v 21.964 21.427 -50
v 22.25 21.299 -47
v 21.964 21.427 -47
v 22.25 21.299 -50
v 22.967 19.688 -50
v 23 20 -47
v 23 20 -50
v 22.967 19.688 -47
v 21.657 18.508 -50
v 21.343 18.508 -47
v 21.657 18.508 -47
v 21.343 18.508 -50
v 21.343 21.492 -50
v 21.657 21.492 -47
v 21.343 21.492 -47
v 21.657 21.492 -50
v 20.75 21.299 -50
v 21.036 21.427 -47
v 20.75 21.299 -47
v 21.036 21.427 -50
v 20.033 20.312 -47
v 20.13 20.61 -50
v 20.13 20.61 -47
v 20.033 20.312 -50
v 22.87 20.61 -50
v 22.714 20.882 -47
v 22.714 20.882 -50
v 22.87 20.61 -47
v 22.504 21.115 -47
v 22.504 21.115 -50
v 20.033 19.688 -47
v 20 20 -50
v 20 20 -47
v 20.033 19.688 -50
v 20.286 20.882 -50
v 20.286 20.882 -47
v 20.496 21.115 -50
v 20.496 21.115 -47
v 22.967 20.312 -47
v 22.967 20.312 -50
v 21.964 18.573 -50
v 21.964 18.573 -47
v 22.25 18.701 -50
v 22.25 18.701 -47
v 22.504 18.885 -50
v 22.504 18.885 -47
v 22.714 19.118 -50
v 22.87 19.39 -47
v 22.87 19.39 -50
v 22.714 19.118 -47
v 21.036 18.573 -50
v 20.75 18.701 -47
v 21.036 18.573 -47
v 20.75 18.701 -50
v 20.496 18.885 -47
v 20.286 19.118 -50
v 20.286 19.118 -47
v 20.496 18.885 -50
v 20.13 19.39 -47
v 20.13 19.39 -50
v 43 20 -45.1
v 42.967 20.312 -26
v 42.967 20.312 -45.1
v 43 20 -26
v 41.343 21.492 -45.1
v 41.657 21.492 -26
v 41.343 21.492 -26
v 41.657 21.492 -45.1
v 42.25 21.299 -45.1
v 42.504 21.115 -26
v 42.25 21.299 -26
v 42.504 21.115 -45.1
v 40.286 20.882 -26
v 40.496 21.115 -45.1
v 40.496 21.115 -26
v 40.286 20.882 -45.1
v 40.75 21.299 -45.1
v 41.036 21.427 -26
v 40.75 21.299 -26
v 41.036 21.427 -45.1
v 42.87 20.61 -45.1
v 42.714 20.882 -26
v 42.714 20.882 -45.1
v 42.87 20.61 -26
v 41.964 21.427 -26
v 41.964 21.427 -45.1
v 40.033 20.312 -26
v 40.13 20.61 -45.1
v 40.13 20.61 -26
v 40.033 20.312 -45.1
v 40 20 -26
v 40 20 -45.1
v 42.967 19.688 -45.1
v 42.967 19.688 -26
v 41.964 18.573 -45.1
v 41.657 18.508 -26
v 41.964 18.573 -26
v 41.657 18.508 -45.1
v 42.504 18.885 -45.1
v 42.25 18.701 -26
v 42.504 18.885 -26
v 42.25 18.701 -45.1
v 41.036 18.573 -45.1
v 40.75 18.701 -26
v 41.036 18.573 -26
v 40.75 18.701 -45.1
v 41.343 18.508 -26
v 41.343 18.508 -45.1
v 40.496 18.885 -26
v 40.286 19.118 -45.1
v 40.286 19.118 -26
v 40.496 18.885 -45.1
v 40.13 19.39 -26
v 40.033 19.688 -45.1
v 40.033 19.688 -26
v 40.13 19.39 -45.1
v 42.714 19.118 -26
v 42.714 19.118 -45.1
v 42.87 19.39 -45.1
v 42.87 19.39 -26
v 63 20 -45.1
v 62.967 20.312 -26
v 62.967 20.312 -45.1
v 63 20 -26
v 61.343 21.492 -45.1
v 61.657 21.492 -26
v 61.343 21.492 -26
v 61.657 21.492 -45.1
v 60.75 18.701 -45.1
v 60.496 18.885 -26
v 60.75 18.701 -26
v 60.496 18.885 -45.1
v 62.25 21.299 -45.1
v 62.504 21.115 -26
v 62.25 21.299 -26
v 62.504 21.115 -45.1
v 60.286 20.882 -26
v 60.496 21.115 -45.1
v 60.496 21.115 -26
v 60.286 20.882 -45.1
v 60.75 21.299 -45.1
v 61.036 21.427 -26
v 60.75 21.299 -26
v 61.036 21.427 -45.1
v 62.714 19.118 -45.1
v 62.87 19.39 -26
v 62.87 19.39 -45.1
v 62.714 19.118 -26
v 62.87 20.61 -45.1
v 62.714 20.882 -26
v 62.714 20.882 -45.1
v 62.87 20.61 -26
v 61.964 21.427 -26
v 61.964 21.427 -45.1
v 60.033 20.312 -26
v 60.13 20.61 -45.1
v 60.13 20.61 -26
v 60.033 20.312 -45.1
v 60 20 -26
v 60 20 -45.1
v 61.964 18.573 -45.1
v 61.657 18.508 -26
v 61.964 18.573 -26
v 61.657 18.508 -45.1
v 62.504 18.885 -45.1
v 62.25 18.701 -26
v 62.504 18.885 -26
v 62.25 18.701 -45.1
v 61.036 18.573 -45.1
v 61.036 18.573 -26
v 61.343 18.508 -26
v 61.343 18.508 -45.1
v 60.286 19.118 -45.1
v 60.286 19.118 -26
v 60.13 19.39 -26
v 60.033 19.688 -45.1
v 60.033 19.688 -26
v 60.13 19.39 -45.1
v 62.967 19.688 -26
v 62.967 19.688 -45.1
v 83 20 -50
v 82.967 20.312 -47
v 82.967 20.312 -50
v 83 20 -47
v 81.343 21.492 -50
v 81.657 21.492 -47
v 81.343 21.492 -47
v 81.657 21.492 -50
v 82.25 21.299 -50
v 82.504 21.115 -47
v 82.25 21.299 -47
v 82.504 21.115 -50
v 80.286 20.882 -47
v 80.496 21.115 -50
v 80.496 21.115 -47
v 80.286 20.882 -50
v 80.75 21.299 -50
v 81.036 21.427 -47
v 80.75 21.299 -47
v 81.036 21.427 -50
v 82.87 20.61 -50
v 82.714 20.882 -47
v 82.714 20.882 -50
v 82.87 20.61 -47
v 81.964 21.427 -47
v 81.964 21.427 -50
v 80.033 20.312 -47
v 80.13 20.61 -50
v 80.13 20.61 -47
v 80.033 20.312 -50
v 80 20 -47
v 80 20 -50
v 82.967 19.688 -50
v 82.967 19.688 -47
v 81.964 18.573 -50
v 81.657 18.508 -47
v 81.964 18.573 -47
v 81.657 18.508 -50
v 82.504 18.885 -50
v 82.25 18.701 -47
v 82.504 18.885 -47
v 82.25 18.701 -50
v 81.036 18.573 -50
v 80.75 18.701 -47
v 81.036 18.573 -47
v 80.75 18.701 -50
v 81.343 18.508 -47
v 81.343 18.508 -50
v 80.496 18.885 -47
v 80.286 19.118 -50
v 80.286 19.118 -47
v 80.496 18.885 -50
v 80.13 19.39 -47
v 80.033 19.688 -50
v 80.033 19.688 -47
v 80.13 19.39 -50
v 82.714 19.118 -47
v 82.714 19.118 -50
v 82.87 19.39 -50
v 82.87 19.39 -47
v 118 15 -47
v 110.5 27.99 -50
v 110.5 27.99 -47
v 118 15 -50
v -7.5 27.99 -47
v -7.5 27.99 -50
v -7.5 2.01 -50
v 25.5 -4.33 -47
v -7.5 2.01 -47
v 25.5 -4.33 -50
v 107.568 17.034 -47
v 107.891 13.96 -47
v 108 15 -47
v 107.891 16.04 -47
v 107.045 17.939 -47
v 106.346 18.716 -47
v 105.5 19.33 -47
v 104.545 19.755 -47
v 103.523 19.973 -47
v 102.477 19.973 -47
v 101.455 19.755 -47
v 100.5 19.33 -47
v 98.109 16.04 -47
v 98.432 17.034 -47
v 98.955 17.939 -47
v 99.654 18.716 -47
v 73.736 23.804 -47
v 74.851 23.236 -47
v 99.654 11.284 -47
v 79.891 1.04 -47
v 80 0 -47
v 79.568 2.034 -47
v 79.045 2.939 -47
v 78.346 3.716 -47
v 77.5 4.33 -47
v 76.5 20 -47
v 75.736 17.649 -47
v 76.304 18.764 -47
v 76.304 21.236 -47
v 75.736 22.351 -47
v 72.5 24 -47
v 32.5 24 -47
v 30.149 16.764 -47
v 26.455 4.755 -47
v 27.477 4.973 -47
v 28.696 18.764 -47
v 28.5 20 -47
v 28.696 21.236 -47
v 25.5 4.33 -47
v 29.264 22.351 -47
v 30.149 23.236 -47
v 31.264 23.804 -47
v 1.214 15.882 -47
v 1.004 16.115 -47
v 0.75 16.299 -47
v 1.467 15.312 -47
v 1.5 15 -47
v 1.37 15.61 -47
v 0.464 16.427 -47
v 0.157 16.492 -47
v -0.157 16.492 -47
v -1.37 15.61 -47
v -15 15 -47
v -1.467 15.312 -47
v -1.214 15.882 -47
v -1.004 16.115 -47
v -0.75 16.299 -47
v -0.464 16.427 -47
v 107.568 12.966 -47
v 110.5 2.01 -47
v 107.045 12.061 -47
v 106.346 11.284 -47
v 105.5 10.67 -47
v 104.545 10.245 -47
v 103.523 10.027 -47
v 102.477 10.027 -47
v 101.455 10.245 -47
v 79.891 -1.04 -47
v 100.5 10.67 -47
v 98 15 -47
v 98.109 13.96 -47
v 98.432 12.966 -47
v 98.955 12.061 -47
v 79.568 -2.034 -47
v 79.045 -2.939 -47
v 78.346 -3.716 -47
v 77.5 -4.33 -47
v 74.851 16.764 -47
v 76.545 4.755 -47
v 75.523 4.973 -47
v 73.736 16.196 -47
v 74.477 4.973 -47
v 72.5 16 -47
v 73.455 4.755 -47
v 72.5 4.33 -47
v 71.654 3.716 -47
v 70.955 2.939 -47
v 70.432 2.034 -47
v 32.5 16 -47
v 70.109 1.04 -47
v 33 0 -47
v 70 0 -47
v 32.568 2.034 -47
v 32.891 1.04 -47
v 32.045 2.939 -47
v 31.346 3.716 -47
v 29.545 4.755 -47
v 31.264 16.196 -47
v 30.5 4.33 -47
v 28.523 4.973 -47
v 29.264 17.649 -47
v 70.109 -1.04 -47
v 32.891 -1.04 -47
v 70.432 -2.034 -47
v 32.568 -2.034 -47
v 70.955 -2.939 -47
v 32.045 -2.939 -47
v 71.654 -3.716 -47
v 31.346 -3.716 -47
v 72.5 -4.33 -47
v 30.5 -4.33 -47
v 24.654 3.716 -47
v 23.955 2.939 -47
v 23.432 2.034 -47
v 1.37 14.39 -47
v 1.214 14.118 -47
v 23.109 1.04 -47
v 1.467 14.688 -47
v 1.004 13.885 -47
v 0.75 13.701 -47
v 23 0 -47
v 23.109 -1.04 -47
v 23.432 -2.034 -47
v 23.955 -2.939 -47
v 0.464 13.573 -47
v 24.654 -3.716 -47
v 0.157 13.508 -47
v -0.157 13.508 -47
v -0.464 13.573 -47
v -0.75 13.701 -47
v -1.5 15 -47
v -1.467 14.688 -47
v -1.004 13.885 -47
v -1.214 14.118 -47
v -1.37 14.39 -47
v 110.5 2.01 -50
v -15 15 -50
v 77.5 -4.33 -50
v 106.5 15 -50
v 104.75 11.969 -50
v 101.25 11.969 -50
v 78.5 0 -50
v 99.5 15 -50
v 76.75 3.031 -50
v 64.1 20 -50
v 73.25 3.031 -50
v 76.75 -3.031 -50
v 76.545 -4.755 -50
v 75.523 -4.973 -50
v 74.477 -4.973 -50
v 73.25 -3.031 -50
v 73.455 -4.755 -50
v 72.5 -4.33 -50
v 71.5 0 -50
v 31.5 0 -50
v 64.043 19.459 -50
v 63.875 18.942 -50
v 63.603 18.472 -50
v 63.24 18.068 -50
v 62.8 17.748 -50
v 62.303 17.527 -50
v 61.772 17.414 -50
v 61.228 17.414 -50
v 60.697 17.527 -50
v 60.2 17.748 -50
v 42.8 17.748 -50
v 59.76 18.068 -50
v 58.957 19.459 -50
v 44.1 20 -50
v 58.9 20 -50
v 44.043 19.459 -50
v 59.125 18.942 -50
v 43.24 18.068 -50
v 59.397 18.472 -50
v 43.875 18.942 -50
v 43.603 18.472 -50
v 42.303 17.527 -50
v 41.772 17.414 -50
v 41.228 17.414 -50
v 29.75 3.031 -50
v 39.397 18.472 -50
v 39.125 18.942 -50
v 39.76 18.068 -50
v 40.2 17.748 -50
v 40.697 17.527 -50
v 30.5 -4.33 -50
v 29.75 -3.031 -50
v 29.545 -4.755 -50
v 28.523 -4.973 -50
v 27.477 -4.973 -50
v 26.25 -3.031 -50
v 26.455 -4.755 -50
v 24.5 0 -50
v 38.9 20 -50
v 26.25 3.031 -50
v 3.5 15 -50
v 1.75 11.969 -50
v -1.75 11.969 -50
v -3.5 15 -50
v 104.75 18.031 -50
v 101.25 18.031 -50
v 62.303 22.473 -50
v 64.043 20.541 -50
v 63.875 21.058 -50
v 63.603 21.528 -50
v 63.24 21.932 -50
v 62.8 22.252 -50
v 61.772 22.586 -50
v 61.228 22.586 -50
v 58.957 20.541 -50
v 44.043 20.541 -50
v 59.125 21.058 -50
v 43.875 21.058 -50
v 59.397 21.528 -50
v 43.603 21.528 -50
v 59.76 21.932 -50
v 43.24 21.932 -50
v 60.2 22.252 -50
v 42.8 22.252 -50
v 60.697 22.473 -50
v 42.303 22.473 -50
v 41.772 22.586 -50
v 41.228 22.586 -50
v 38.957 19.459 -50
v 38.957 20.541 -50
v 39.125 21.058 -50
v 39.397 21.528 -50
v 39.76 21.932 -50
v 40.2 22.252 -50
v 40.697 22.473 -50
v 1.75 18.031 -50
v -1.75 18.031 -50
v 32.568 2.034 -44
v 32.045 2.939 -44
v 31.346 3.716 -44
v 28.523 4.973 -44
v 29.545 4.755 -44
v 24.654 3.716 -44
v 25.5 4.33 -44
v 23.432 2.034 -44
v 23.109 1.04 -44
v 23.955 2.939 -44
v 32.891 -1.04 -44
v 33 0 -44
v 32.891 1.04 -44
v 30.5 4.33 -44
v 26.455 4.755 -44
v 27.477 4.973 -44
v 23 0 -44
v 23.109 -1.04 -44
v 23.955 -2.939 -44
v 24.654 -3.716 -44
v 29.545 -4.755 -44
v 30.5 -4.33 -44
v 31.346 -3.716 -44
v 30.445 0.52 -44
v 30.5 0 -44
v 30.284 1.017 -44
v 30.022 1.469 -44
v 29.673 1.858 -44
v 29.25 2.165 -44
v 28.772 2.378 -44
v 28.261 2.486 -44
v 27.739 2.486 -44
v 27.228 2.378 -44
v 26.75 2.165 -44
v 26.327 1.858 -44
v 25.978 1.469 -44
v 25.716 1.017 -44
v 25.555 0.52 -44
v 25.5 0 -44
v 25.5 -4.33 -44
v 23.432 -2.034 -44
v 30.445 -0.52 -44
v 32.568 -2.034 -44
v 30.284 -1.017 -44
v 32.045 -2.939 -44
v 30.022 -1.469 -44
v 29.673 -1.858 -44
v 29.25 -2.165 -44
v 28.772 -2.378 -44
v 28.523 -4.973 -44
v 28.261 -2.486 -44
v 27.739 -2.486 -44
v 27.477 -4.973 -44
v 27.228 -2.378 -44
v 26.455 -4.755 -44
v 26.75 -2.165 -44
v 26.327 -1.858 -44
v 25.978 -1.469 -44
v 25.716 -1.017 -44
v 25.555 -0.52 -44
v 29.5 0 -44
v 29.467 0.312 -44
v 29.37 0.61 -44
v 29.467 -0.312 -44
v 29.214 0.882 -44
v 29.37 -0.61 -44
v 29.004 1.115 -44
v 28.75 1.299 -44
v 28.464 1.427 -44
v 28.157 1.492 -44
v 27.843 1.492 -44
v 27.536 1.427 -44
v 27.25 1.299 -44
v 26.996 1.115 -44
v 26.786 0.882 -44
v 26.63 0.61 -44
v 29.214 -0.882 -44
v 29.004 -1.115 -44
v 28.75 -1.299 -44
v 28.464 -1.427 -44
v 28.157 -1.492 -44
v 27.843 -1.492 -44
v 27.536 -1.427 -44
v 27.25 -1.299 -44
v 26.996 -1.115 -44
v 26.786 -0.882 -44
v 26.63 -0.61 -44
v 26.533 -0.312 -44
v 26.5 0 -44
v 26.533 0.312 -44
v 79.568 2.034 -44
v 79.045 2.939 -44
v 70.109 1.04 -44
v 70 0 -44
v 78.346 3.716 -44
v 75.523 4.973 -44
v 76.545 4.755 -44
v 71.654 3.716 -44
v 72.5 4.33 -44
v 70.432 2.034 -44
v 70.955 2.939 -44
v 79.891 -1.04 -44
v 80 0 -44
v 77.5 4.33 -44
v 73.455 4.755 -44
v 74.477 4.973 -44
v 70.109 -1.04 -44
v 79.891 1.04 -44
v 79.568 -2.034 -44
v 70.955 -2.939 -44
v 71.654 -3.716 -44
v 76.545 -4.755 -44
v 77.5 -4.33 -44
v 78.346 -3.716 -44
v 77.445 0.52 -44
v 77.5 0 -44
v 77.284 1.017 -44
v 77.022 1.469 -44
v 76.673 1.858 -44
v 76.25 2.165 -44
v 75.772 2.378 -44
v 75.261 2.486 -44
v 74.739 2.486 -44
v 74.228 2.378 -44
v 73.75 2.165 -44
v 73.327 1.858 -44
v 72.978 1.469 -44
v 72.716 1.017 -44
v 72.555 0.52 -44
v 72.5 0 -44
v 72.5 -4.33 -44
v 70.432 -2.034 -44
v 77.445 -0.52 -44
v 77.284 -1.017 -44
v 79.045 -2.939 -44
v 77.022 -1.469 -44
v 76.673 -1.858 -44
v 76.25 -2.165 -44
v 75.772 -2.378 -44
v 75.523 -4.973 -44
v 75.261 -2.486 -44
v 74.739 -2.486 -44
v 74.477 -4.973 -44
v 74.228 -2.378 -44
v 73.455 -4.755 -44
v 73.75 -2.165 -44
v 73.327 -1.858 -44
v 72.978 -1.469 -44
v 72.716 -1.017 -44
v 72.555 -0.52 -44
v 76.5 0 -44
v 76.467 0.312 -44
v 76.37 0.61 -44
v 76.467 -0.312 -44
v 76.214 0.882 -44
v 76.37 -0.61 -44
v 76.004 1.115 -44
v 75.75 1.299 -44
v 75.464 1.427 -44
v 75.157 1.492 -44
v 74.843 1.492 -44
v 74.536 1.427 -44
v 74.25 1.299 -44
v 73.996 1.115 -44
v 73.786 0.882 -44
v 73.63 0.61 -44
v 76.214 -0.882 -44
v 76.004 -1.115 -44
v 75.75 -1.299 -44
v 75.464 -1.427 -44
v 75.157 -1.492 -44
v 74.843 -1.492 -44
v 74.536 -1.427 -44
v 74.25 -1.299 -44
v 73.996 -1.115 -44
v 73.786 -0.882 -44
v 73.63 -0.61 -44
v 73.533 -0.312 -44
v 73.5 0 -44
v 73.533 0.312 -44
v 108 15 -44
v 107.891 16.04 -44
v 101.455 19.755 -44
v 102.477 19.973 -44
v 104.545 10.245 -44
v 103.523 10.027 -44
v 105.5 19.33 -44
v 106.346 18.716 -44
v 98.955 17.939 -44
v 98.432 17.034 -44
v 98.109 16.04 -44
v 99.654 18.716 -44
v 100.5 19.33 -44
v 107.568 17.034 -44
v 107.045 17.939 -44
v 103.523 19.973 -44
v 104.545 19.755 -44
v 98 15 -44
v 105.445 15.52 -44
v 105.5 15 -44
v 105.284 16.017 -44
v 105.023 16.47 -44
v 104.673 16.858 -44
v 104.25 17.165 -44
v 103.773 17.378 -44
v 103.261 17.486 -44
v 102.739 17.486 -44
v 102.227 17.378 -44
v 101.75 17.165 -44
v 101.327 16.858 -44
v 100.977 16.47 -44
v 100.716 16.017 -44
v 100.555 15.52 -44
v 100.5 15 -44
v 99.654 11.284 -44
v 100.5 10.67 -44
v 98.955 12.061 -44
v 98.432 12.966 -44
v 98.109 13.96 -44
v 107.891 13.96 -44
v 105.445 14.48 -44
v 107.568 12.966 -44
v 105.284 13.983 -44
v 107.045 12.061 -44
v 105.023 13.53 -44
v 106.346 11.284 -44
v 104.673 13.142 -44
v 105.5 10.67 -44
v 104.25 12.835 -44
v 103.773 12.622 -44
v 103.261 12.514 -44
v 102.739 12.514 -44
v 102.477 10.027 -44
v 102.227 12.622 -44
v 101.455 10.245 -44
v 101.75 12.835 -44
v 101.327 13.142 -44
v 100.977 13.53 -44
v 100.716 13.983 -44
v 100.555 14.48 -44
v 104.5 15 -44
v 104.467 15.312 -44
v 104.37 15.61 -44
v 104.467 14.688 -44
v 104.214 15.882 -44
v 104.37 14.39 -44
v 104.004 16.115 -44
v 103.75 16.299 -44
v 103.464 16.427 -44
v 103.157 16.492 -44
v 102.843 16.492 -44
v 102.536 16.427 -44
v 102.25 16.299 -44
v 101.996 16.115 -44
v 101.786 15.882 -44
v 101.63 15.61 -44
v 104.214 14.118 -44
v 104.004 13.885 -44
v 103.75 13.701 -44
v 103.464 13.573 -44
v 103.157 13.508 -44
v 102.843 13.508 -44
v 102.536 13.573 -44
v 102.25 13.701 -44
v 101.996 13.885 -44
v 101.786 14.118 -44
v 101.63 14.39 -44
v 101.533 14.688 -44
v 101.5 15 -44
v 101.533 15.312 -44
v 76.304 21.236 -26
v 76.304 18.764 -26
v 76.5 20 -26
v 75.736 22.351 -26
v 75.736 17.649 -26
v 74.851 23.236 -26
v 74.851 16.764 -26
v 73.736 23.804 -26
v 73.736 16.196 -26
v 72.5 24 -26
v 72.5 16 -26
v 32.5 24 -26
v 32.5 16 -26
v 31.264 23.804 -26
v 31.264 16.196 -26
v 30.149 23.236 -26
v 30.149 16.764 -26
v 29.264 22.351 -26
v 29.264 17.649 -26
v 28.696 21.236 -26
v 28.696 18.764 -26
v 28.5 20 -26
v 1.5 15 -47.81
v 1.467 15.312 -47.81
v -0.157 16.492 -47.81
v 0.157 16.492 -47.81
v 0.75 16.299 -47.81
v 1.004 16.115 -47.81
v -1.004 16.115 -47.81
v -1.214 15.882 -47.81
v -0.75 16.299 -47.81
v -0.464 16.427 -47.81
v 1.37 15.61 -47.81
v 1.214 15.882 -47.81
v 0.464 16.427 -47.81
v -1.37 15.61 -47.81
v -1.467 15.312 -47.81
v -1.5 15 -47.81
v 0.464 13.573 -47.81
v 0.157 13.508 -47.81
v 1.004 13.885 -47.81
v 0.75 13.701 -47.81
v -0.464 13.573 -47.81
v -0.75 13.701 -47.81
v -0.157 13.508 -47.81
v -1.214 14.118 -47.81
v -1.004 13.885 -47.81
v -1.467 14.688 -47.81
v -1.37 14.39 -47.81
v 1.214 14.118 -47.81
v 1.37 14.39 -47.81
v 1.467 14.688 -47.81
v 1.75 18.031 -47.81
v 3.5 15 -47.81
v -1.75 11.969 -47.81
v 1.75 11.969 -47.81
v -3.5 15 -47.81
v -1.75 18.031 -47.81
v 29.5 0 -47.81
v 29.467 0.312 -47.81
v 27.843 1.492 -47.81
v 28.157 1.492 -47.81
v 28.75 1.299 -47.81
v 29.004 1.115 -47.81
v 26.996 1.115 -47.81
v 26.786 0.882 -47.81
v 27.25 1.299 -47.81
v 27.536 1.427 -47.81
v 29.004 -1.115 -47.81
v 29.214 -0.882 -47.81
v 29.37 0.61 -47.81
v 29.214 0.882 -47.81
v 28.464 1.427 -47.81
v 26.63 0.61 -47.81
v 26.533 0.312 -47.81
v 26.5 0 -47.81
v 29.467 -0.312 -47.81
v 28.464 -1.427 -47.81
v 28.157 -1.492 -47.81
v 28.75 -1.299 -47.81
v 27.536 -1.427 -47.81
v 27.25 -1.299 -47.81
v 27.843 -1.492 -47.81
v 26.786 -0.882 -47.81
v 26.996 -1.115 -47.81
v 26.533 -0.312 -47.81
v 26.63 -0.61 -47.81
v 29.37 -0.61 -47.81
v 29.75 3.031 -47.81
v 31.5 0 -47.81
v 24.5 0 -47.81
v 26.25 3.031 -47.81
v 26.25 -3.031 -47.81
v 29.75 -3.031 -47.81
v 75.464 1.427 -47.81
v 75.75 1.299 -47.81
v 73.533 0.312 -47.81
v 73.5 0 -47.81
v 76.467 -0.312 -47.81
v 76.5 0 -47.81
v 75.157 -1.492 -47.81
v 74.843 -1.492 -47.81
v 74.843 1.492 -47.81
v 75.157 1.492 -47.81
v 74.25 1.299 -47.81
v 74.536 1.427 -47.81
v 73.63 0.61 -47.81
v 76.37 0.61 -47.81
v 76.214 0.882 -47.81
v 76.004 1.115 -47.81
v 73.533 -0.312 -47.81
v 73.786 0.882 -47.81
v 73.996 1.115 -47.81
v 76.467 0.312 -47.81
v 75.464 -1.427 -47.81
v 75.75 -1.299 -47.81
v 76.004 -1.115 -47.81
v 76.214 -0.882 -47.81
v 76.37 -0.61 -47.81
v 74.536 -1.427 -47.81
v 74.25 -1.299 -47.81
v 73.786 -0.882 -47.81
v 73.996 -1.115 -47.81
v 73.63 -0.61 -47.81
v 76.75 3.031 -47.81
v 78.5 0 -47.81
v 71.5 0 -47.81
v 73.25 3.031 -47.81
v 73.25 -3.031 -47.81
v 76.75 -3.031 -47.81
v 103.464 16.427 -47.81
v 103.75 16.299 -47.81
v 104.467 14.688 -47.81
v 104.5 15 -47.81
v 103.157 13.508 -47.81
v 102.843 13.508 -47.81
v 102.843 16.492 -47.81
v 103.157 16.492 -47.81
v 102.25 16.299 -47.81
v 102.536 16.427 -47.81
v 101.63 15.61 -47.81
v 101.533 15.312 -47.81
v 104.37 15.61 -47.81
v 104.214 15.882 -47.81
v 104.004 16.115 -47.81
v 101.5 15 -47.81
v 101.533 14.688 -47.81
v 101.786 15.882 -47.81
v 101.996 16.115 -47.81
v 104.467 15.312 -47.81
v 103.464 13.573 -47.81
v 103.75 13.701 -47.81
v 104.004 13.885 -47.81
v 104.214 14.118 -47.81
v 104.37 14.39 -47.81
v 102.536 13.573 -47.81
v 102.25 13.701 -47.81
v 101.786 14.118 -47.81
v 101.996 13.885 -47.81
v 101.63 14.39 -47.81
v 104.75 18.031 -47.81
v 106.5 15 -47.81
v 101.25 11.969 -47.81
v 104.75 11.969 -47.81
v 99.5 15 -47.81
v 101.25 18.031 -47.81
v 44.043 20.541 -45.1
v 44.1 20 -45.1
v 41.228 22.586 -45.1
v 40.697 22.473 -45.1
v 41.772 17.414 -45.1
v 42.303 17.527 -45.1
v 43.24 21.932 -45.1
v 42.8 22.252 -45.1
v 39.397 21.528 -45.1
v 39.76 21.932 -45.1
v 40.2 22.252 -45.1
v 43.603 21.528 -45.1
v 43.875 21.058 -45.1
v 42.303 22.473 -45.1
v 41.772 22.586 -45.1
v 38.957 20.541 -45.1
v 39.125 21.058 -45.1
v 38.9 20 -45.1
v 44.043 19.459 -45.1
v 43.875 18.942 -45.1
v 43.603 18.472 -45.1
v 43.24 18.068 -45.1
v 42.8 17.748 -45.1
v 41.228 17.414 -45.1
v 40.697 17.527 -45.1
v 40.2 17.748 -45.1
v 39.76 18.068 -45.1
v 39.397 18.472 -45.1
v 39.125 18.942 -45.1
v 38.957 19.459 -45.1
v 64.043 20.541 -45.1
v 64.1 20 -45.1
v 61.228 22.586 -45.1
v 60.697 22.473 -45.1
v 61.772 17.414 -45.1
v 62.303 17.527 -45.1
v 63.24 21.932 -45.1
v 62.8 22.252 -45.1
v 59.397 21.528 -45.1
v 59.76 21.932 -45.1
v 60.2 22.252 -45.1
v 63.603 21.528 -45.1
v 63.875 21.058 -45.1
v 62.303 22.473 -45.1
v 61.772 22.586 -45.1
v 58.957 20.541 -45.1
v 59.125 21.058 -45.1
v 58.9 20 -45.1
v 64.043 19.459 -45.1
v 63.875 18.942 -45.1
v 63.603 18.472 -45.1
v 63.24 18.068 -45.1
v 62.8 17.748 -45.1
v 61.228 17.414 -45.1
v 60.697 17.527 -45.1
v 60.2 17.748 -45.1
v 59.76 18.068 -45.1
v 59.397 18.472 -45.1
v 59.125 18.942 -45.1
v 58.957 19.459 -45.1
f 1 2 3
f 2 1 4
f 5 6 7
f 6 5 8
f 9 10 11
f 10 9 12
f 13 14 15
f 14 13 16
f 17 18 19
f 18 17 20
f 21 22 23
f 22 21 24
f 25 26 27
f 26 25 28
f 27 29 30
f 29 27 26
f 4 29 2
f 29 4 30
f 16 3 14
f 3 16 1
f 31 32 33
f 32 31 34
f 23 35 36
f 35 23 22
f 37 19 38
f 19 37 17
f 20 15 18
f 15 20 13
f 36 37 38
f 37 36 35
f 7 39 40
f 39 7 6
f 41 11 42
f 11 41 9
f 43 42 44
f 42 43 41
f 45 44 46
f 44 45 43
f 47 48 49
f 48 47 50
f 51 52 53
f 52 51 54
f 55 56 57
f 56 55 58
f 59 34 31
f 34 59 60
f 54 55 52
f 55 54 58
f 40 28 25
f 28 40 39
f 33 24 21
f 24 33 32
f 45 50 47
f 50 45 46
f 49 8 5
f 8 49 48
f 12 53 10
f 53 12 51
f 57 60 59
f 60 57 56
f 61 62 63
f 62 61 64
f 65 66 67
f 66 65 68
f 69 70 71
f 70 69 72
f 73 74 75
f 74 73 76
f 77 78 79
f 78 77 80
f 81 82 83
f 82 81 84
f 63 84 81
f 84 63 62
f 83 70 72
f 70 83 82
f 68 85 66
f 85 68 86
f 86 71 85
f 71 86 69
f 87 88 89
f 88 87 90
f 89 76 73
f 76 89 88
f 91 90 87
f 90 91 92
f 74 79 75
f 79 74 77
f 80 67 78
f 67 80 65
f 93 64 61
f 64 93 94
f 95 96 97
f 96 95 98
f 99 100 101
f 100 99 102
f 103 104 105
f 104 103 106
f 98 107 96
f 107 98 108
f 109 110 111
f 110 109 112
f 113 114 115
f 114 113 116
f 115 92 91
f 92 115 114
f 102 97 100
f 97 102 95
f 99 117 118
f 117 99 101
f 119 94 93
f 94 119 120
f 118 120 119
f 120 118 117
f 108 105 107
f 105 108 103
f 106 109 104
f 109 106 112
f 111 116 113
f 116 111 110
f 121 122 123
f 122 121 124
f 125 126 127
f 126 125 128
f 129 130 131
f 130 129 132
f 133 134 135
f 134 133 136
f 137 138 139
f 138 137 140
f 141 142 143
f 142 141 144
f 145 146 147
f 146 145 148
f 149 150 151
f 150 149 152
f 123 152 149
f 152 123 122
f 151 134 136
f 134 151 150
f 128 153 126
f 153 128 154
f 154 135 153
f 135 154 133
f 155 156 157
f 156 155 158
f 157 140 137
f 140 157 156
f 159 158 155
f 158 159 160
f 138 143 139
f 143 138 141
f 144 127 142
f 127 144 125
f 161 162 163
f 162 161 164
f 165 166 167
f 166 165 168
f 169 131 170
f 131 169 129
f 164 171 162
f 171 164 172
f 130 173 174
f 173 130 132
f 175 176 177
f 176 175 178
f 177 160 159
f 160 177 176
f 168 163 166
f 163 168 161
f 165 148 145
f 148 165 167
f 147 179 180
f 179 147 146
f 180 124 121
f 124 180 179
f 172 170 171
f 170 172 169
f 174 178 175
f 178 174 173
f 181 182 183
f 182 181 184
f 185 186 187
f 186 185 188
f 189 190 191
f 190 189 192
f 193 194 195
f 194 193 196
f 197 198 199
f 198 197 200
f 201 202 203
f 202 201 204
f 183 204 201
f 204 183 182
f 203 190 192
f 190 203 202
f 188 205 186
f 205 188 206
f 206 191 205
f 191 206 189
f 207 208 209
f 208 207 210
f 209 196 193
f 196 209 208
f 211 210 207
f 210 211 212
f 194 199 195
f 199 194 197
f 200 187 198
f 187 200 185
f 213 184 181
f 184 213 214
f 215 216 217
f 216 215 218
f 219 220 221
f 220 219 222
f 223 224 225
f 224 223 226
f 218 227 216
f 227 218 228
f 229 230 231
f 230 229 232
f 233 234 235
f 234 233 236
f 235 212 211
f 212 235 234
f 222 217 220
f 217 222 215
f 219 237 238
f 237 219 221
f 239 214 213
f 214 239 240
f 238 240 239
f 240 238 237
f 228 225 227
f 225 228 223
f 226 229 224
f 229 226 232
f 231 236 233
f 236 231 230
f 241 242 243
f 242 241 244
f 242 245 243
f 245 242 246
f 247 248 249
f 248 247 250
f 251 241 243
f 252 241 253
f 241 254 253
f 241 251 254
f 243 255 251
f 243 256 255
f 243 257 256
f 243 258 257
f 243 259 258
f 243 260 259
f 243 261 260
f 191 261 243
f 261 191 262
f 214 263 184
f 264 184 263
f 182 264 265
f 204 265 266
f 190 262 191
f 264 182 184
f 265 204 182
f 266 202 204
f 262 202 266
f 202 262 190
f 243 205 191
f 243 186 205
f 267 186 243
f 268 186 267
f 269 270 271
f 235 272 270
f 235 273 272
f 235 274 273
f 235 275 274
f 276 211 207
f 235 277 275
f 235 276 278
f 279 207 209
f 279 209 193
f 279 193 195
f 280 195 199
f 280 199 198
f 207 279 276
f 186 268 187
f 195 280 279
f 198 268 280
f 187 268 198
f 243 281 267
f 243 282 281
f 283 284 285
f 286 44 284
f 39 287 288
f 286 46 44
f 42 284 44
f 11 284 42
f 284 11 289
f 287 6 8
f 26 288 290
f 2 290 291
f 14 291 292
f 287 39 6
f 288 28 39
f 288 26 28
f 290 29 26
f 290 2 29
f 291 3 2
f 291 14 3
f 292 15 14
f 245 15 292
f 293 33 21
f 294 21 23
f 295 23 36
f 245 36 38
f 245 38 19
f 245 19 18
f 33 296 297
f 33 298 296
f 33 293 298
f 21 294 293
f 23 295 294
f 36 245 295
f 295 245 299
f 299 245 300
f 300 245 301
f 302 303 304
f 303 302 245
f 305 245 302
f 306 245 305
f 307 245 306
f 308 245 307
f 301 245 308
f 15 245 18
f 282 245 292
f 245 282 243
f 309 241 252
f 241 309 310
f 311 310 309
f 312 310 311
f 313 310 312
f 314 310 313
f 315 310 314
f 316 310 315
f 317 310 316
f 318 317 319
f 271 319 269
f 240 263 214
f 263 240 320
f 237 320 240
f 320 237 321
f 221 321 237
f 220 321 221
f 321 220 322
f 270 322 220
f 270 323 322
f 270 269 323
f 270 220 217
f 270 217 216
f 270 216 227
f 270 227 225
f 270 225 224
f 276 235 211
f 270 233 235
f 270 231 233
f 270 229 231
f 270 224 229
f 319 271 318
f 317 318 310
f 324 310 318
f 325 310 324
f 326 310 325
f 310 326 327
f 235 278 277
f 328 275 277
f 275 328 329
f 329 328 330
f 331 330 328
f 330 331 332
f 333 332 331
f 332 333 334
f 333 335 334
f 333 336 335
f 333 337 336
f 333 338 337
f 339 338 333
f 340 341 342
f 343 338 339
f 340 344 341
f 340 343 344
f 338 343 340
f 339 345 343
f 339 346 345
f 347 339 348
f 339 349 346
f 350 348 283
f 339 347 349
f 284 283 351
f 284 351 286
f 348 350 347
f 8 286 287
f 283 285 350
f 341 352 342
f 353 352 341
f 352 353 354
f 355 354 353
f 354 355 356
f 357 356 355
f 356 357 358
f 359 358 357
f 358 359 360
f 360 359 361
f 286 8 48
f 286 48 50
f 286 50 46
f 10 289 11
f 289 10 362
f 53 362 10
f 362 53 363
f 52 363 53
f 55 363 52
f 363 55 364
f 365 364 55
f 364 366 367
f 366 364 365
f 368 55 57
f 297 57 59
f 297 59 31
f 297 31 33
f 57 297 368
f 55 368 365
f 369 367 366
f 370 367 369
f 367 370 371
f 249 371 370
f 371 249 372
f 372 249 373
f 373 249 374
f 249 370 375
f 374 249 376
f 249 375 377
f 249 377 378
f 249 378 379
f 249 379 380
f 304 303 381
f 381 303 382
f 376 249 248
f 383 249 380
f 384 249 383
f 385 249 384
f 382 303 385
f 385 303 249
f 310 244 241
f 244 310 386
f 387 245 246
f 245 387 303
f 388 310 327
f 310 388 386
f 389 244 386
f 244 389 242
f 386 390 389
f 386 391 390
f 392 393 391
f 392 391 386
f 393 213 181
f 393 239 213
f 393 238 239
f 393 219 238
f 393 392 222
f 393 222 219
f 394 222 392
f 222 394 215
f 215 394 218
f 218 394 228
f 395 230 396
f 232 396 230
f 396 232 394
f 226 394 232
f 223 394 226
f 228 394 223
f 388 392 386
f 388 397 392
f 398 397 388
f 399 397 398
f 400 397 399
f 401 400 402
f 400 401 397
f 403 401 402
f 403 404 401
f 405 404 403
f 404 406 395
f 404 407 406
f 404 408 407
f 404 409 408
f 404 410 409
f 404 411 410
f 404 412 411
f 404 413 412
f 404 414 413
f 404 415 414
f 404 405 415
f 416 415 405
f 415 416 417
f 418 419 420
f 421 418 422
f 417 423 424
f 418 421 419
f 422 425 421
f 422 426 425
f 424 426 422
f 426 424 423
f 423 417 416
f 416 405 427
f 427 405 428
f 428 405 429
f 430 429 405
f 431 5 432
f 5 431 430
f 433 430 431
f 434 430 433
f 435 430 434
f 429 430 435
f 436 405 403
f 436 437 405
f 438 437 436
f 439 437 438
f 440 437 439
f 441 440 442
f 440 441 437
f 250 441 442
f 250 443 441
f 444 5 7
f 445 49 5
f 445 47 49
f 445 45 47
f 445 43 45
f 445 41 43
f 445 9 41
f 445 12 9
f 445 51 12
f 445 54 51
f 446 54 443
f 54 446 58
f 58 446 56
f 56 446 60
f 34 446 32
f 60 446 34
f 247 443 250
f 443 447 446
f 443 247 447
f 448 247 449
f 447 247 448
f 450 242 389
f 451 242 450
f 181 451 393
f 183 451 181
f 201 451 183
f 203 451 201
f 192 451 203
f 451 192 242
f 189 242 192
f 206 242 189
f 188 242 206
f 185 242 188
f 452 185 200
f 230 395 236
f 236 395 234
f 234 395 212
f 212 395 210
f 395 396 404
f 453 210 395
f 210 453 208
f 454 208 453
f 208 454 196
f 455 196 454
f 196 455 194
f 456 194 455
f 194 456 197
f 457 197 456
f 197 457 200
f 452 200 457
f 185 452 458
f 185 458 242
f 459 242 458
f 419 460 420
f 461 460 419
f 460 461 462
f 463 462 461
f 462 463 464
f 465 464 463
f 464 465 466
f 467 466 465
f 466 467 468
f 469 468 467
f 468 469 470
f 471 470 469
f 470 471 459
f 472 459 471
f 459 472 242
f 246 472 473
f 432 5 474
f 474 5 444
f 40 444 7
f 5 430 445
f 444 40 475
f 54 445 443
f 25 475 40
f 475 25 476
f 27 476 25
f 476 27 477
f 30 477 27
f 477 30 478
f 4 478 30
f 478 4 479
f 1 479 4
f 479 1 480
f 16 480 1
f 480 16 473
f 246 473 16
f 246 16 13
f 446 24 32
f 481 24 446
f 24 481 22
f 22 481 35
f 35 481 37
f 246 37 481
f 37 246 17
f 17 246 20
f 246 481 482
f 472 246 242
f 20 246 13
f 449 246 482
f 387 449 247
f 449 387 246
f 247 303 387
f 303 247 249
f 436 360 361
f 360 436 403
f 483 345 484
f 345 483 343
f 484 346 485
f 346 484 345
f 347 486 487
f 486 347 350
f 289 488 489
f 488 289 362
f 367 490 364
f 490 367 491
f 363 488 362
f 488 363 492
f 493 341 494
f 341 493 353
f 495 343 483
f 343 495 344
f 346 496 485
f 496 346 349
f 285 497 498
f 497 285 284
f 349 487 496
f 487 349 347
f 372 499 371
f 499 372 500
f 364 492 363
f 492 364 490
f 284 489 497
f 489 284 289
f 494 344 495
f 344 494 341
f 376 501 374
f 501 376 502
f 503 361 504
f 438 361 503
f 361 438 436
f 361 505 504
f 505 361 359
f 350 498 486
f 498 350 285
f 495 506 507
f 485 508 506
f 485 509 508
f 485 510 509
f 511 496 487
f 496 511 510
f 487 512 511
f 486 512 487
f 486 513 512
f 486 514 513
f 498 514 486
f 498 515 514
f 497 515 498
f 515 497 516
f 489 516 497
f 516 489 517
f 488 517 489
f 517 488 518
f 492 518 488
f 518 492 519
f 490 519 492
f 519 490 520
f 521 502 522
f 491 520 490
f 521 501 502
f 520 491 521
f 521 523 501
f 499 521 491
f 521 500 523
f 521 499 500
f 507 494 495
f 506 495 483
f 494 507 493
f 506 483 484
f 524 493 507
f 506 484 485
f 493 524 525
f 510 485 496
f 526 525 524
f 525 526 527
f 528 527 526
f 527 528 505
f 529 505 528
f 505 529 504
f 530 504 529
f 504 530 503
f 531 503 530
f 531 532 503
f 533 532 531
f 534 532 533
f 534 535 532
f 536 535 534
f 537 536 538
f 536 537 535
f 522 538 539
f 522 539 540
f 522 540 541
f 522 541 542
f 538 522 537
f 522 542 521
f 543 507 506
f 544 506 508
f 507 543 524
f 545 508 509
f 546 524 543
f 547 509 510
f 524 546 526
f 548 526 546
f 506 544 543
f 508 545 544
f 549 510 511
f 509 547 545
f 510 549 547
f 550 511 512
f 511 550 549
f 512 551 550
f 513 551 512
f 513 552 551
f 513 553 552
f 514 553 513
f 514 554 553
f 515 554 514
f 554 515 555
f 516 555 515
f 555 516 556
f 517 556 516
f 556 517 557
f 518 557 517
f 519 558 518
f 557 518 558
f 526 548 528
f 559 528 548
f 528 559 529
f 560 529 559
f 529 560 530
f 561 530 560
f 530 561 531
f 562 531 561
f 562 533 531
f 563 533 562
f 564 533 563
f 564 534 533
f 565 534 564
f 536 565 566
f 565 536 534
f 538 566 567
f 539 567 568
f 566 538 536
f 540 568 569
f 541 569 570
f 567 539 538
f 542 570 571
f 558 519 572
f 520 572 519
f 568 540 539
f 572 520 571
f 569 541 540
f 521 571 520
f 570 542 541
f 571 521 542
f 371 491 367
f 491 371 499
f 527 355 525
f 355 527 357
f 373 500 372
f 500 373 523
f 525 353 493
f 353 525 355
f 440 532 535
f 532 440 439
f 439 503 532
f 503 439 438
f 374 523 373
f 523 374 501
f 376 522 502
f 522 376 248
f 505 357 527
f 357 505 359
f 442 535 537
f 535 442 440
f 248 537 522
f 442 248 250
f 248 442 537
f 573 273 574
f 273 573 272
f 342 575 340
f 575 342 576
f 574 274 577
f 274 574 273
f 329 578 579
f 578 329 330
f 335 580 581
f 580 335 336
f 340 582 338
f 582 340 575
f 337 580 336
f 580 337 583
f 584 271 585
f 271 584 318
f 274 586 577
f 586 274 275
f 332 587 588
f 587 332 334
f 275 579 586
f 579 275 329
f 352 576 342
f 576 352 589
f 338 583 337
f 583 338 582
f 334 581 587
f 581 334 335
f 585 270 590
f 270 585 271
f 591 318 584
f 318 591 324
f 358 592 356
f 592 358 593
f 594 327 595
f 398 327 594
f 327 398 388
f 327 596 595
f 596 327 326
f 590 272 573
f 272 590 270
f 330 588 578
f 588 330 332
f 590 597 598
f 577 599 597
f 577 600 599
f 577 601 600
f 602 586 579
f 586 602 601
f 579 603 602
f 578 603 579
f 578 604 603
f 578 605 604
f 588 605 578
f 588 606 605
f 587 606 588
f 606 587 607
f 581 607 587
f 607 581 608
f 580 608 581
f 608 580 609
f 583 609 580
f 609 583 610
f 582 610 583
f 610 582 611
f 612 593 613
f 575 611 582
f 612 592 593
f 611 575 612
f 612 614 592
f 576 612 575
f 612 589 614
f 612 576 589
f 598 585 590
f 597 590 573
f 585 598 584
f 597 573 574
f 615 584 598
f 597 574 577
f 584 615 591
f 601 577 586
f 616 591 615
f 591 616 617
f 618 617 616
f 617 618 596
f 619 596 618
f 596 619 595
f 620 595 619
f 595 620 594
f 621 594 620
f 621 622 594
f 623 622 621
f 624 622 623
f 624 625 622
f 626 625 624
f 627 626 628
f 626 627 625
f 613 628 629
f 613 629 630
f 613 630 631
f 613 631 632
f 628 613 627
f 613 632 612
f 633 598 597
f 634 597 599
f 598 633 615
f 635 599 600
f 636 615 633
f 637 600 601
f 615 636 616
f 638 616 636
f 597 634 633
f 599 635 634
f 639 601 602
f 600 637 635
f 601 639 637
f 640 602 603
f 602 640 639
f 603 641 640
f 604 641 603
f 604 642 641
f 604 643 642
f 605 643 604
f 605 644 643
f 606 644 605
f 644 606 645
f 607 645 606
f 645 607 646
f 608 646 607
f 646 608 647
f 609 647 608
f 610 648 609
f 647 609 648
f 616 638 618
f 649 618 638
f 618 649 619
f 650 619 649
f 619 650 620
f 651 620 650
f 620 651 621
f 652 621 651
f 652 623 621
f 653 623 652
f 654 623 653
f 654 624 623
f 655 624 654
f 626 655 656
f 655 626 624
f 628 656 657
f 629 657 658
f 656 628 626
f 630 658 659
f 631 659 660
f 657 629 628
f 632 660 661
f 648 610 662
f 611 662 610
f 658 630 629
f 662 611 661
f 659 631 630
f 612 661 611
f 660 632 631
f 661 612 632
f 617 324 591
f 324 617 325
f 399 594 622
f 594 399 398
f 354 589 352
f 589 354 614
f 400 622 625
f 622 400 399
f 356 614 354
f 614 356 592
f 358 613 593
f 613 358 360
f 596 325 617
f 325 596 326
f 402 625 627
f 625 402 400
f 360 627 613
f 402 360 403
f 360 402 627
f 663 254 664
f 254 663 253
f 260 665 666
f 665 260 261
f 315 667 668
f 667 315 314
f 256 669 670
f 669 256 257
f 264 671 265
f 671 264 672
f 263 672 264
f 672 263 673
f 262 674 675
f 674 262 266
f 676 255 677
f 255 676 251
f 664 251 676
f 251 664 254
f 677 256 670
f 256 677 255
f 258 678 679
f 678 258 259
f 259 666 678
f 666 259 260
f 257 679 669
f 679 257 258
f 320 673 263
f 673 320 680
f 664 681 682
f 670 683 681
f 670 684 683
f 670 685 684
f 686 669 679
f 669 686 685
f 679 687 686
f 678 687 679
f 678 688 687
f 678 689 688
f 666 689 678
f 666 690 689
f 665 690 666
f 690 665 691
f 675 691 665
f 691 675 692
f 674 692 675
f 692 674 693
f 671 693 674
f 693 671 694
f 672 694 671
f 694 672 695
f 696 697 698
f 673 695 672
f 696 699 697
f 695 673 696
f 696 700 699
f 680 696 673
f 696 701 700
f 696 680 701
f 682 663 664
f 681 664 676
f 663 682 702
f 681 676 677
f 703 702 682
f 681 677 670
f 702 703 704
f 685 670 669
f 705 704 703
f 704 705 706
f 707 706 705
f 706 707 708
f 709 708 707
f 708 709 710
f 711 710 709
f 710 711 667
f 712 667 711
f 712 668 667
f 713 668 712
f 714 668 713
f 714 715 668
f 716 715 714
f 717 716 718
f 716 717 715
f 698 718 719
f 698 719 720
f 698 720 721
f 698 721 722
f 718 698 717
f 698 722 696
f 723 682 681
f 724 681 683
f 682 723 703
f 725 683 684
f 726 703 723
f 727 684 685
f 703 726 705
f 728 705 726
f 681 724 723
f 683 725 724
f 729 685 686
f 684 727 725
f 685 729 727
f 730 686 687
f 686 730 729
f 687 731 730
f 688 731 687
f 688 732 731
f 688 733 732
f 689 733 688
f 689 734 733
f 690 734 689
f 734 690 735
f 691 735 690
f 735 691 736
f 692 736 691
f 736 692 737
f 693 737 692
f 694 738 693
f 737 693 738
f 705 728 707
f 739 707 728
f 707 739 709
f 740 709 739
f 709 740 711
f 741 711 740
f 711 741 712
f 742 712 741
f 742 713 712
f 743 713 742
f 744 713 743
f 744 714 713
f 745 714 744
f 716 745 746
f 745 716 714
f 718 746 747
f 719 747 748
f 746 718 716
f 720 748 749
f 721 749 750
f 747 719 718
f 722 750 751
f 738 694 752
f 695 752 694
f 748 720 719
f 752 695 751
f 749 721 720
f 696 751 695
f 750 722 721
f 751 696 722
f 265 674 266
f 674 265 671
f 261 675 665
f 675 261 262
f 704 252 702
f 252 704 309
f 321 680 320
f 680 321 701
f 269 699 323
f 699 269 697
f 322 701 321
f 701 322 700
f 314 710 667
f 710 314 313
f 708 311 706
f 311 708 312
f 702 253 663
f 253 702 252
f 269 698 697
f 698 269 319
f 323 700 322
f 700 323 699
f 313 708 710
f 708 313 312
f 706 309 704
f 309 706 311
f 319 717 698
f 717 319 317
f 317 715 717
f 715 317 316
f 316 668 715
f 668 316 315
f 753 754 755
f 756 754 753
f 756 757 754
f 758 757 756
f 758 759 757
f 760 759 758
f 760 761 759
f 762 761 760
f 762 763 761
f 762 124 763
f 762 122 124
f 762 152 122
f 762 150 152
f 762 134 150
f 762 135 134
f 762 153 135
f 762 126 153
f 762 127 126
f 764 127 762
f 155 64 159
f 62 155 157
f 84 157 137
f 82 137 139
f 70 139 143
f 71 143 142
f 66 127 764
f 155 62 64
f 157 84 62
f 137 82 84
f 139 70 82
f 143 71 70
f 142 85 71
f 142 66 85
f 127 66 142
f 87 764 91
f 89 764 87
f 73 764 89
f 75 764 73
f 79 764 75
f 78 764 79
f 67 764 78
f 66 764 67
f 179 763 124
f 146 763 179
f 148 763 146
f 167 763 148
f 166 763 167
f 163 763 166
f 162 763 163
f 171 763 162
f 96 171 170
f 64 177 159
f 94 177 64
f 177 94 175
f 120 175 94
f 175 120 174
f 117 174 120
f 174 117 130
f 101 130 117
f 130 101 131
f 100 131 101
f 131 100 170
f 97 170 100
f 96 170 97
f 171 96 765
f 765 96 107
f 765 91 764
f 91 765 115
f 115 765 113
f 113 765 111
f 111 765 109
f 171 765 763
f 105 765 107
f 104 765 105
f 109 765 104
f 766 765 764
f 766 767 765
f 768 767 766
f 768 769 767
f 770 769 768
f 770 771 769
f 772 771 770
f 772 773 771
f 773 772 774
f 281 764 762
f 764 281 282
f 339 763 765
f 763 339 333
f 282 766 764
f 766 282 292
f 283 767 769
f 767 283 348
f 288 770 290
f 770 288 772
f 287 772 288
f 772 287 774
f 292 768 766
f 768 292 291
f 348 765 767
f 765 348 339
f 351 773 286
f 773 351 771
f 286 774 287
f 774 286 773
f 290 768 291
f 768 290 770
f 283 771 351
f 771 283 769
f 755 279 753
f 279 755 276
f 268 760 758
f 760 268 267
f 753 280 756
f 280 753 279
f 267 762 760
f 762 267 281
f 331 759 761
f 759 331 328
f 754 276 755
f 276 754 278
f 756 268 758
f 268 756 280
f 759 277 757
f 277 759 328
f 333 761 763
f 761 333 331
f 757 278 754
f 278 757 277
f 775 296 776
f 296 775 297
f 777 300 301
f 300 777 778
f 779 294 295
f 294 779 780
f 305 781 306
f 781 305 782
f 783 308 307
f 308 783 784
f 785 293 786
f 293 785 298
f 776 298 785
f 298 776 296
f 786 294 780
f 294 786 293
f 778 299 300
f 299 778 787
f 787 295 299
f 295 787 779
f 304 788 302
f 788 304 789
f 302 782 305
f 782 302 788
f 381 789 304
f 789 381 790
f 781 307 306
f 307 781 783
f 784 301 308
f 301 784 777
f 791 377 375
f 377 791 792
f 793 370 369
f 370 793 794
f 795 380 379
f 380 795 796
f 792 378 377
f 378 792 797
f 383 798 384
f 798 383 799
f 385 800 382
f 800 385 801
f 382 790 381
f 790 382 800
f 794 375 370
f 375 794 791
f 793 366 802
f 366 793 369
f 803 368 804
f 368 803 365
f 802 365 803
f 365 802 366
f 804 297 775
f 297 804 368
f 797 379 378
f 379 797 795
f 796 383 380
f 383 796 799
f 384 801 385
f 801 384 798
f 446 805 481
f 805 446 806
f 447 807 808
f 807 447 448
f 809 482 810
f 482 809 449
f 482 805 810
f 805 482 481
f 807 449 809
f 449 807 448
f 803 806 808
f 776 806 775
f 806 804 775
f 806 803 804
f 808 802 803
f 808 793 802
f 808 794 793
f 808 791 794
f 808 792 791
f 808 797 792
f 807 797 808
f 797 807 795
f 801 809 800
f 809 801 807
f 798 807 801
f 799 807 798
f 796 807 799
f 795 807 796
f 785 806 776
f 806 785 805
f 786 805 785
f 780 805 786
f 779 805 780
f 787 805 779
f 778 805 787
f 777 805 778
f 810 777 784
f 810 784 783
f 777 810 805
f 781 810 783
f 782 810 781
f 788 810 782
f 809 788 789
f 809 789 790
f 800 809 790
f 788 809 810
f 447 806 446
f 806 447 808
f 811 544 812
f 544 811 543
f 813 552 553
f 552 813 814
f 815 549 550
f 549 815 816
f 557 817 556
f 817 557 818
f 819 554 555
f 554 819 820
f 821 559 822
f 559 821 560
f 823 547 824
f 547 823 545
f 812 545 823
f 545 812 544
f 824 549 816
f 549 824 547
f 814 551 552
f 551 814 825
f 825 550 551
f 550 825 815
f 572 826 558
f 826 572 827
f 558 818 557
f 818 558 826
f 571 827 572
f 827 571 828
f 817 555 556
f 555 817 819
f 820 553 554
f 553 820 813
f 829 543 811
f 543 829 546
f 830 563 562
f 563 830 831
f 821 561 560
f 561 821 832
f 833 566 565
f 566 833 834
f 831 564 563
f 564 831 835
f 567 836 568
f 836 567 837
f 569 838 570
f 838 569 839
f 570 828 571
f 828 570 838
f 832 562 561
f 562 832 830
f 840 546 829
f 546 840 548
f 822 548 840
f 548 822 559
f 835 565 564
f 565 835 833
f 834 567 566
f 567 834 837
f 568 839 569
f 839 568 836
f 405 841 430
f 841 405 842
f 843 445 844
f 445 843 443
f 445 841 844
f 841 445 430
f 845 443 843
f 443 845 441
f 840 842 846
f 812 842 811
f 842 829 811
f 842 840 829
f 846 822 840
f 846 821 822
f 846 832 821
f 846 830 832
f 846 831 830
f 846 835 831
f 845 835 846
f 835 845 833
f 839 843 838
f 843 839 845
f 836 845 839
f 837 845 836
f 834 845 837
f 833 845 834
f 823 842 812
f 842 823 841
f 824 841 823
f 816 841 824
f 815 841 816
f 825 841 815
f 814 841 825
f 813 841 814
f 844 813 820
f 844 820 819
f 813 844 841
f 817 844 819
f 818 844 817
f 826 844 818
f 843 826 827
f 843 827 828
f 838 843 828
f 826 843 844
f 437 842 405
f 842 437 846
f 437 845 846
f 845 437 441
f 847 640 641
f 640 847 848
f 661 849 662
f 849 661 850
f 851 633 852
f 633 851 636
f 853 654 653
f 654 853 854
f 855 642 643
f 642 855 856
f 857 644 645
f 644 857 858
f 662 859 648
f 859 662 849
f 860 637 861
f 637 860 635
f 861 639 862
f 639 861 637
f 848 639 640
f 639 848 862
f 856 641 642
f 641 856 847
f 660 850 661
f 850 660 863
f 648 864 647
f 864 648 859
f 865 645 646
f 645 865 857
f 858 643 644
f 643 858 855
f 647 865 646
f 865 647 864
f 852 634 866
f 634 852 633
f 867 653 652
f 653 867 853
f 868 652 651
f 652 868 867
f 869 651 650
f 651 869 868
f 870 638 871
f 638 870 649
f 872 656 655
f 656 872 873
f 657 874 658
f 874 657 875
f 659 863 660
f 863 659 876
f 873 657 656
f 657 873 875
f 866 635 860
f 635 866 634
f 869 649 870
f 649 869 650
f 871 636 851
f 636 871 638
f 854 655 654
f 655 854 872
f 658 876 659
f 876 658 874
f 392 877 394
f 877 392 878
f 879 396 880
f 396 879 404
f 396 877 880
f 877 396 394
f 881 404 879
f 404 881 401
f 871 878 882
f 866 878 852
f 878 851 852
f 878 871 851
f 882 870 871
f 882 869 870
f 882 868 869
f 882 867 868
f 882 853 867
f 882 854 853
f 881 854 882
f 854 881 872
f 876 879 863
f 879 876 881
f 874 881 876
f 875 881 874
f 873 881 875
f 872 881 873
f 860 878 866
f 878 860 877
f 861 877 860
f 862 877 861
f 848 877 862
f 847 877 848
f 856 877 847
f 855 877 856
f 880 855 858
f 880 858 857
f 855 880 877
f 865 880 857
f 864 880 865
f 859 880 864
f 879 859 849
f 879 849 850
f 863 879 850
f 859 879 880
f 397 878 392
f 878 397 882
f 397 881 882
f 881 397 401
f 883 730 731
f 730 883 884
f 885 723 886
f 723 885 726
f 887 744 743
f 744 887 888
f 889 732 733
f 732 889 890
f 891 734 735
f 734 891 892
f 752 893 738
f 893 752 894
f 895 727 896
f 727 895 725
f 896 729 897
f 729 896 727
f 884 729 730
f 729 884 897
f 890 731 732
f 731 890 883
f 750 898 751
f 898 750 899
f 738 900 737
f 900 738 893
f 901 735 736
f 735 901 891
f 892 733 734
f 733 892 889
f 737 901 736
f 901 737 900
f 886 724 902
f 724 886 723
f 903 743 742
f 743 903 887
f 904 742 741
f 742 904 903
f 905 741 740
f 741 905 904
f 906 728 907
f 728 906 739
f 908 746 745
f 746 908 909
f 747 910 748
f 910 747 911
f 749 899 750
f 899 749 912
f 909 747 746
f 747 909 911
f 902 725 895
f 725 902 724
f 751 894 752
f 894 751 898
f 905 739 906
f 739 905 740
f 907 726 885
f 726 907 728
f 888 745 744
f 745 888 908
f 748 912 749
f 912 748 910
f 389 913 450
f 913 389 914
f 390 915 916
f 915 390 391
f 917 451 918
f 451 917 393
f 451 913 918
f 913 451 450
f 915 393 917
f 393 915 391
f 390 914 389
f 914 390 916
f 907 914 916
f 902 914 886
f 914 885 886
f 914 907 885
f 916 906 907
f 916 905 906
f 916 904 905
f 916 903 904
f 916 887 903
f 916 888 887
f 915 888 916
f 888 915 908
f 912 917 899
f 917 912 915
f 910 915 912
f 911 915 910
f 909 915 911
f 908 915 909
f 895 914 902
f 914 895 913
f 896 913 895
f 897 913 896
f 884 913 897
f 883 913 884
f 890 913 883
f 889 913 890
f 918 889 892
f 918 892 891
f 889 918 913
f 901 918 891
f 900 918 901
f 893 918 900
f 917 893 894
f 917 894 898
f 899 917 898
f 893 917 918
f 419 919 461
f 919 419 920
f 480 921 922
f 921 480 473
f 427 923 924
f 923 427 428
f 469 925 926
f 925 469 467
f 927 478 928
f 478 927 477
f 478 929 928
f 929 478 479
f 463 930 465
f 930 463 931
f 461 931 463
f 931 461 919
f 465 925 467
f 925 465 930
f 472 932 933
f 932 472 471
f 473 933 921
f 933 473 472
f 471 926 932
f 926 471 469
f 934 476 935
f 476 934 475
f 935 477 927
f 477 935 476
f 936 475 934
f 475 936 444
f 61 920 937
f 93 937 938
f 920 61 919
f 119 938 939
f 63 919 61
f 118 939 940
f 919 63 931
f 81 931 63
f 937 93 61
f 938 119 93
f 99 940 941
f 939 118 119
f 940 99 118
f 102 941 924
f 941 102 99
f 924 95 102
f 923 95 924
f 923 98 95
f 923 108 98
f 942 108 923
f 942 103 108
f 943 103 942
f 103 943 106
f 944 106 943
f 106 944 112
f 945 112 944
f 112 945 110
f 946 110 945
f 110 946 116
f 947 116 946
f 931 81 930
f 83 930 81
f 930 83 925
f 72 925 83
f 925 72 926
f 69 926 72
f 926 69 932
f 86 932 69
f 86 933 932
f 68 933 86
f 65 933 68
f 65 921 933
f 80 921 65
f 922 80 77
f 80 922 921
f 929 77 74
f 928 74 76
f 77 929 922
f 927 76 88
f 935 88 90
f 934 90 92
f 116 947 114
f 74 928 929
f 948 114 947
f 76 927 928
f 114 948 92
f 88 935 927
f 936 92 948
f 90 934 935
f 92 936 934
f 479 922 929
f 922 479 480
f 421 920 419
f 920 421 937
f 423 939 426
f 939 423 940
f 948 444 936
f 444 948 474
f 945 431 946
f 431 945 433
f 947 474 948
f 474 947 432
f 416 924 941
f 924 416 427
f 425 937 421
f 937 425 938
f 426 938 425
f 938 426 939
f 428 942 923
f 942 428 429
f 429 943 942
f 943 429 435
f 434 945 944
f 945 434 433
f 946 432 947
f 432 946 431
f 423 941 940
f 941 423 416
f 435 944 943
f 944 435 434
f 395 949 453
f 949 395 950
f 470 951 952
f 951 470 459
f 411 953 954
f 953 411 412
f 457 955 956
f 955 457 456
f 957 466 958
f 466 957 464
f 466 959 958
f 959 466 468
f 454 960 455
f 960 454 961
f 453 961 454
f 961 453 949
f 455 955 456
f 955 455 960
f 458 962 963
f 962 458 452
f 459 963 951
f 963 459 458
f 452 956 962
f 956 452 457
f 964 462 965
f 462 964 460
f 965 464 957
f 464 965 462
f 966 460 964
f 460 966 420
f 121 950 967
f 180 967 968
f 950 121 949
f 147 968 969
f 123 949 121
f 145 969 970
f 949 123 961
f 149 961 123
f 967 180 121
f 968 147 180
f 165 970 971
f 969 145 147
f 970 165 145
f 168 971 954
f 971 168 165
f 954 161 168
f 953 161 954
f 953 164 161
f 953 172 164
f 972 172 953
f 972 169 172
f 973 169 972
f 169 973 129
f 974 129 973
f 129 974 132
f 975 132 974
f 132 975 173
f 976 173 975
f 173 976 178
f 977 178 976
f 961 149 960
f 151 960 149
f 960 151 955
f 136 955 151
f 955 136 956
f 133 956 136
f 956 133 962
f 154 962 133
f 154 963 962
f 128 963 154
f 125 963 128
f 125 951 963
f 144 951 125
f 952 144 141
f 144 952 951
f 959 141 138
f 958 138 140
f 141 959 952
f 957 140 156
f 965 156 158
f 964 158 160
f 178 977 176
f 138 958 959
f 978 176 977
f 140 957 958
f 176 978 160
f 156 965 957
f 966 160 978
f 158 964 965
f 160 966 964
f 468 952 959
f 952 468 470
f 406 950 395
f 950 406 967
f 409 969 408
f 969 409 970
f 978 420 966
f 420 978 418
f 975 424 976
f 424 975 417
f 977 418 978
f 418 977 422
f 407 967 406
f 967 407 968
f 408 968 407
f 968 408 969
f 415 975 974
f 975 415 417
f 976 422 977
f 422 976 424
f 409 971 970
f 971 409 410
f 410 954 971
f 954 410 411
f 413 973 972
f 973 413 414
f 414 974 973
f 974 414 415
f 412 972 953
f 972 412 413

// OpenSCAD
driveWheel = [0,15,0];
idlerWheel1 = [28,0,0];
idlerWheel2 = [75,0,0];
idlerWheel3 = [103,15,0];

wheeldiameter=30;
bodyWidth = 100;

nholes = 5;

module side(){
  difference(){
  union(){
    hull(){
      translate(driveWheel)cylinder(r=15,h=3,$fn=6);
      translate(idlerWheel1)cylinder(r=5,h=3,$fn=6);
      translate(idlerWheel2)cylinder(r=5,h=3,$fn=6);
      translate(idlerWheel3)cylinder(r=15,h=3,$fn=6);
    };
  
    translate([0, 0,0])translate(idlerWheel1)cylinder(r=5,h=6,$fn=30);
    translate([0, 0,0])translate(idlerWheel2)cylinder(r=5,h=6,$fn=30);
    translate([0, 0,0])translate(idlerWheel3)cylinder(r=5,h=6,$fn=30); 


    translate([105/2-20,16,0])cube([40,8,24]);
    translate([105/2-20,20,0])cylinder(r=4,h=24,$fn=20);
    translate([105/2+20,20,0])cylinder(r=4,h=24,$fn=20);

  }
  // Differences
  translate([0, 0 ,-5])translate(driveWheel)cylinder(r=1.5,h=15,$fn=30);
  translate([0, 0 ,6])translate(driveWheel)cylinder(r=2.5,h=15,$fn=30);
  translate([0,0,-0.01])translate(driveWheel)cylinder(r=3.5,h=2.2,$fn=6);

    
  translate([0, 0 ,-5])translate(idlerWheel1)cylinder(r=1.5,h=15,$fn=30);
  translate([0, 0 ,6])translate(idlerWheel1)cylinder(r=2.5,h=15,$fn=30);
  translate([0,0,-0.01])translate(idlerWheel1)cylinder(r=3.5,h=2.2,$fn=6);

  translate([0, 0 ,-5])translate(idlerWheel2)cylinder(r=1.5,h=15,$fn=30);
  translate([0, 0 ,6])translate(idlerWheel2)cylinder(r=2.5,h=15,$fn=30);
  translate([0,0,-0.01])translate(idlerWheel2)cylinder(r=3.5,h=2.2,$fn=6);
  
  translate([0, 0 ,-5])translate(idlerWheel3)cylinder(r=1.5,h=15,$fn=30);
  translate([0,0,-0.01])translate(idlerWheel3)cylinder(r=3.5,h=2.2,$fn=6);
  translate([0, 0 ,6])translate(idlerWheel3)cylinder(r=2.5,h=15,$fn=30);

  
  //


  
  
  // Attachement Holes
  
  for (i = [0:3]){
   x =  51.5 -30 +i*20 ;
   translate([x, 20, -0.1])
   cylinder(r=1.5,h=28, $fn=30);
  }

  translate([51.5 -10, 20, -0.10])cylinder(r=2.6,h=5, $fn=30);
  translate([51.5 +10, 20, -0.10])cylinder(r=2.6,h=5, $fn=30);

  }
}


translate([0,0,-bodyWidth/2])side();
//translate([0,0,bodyWidth/2])mirror([0,0,1])side();
